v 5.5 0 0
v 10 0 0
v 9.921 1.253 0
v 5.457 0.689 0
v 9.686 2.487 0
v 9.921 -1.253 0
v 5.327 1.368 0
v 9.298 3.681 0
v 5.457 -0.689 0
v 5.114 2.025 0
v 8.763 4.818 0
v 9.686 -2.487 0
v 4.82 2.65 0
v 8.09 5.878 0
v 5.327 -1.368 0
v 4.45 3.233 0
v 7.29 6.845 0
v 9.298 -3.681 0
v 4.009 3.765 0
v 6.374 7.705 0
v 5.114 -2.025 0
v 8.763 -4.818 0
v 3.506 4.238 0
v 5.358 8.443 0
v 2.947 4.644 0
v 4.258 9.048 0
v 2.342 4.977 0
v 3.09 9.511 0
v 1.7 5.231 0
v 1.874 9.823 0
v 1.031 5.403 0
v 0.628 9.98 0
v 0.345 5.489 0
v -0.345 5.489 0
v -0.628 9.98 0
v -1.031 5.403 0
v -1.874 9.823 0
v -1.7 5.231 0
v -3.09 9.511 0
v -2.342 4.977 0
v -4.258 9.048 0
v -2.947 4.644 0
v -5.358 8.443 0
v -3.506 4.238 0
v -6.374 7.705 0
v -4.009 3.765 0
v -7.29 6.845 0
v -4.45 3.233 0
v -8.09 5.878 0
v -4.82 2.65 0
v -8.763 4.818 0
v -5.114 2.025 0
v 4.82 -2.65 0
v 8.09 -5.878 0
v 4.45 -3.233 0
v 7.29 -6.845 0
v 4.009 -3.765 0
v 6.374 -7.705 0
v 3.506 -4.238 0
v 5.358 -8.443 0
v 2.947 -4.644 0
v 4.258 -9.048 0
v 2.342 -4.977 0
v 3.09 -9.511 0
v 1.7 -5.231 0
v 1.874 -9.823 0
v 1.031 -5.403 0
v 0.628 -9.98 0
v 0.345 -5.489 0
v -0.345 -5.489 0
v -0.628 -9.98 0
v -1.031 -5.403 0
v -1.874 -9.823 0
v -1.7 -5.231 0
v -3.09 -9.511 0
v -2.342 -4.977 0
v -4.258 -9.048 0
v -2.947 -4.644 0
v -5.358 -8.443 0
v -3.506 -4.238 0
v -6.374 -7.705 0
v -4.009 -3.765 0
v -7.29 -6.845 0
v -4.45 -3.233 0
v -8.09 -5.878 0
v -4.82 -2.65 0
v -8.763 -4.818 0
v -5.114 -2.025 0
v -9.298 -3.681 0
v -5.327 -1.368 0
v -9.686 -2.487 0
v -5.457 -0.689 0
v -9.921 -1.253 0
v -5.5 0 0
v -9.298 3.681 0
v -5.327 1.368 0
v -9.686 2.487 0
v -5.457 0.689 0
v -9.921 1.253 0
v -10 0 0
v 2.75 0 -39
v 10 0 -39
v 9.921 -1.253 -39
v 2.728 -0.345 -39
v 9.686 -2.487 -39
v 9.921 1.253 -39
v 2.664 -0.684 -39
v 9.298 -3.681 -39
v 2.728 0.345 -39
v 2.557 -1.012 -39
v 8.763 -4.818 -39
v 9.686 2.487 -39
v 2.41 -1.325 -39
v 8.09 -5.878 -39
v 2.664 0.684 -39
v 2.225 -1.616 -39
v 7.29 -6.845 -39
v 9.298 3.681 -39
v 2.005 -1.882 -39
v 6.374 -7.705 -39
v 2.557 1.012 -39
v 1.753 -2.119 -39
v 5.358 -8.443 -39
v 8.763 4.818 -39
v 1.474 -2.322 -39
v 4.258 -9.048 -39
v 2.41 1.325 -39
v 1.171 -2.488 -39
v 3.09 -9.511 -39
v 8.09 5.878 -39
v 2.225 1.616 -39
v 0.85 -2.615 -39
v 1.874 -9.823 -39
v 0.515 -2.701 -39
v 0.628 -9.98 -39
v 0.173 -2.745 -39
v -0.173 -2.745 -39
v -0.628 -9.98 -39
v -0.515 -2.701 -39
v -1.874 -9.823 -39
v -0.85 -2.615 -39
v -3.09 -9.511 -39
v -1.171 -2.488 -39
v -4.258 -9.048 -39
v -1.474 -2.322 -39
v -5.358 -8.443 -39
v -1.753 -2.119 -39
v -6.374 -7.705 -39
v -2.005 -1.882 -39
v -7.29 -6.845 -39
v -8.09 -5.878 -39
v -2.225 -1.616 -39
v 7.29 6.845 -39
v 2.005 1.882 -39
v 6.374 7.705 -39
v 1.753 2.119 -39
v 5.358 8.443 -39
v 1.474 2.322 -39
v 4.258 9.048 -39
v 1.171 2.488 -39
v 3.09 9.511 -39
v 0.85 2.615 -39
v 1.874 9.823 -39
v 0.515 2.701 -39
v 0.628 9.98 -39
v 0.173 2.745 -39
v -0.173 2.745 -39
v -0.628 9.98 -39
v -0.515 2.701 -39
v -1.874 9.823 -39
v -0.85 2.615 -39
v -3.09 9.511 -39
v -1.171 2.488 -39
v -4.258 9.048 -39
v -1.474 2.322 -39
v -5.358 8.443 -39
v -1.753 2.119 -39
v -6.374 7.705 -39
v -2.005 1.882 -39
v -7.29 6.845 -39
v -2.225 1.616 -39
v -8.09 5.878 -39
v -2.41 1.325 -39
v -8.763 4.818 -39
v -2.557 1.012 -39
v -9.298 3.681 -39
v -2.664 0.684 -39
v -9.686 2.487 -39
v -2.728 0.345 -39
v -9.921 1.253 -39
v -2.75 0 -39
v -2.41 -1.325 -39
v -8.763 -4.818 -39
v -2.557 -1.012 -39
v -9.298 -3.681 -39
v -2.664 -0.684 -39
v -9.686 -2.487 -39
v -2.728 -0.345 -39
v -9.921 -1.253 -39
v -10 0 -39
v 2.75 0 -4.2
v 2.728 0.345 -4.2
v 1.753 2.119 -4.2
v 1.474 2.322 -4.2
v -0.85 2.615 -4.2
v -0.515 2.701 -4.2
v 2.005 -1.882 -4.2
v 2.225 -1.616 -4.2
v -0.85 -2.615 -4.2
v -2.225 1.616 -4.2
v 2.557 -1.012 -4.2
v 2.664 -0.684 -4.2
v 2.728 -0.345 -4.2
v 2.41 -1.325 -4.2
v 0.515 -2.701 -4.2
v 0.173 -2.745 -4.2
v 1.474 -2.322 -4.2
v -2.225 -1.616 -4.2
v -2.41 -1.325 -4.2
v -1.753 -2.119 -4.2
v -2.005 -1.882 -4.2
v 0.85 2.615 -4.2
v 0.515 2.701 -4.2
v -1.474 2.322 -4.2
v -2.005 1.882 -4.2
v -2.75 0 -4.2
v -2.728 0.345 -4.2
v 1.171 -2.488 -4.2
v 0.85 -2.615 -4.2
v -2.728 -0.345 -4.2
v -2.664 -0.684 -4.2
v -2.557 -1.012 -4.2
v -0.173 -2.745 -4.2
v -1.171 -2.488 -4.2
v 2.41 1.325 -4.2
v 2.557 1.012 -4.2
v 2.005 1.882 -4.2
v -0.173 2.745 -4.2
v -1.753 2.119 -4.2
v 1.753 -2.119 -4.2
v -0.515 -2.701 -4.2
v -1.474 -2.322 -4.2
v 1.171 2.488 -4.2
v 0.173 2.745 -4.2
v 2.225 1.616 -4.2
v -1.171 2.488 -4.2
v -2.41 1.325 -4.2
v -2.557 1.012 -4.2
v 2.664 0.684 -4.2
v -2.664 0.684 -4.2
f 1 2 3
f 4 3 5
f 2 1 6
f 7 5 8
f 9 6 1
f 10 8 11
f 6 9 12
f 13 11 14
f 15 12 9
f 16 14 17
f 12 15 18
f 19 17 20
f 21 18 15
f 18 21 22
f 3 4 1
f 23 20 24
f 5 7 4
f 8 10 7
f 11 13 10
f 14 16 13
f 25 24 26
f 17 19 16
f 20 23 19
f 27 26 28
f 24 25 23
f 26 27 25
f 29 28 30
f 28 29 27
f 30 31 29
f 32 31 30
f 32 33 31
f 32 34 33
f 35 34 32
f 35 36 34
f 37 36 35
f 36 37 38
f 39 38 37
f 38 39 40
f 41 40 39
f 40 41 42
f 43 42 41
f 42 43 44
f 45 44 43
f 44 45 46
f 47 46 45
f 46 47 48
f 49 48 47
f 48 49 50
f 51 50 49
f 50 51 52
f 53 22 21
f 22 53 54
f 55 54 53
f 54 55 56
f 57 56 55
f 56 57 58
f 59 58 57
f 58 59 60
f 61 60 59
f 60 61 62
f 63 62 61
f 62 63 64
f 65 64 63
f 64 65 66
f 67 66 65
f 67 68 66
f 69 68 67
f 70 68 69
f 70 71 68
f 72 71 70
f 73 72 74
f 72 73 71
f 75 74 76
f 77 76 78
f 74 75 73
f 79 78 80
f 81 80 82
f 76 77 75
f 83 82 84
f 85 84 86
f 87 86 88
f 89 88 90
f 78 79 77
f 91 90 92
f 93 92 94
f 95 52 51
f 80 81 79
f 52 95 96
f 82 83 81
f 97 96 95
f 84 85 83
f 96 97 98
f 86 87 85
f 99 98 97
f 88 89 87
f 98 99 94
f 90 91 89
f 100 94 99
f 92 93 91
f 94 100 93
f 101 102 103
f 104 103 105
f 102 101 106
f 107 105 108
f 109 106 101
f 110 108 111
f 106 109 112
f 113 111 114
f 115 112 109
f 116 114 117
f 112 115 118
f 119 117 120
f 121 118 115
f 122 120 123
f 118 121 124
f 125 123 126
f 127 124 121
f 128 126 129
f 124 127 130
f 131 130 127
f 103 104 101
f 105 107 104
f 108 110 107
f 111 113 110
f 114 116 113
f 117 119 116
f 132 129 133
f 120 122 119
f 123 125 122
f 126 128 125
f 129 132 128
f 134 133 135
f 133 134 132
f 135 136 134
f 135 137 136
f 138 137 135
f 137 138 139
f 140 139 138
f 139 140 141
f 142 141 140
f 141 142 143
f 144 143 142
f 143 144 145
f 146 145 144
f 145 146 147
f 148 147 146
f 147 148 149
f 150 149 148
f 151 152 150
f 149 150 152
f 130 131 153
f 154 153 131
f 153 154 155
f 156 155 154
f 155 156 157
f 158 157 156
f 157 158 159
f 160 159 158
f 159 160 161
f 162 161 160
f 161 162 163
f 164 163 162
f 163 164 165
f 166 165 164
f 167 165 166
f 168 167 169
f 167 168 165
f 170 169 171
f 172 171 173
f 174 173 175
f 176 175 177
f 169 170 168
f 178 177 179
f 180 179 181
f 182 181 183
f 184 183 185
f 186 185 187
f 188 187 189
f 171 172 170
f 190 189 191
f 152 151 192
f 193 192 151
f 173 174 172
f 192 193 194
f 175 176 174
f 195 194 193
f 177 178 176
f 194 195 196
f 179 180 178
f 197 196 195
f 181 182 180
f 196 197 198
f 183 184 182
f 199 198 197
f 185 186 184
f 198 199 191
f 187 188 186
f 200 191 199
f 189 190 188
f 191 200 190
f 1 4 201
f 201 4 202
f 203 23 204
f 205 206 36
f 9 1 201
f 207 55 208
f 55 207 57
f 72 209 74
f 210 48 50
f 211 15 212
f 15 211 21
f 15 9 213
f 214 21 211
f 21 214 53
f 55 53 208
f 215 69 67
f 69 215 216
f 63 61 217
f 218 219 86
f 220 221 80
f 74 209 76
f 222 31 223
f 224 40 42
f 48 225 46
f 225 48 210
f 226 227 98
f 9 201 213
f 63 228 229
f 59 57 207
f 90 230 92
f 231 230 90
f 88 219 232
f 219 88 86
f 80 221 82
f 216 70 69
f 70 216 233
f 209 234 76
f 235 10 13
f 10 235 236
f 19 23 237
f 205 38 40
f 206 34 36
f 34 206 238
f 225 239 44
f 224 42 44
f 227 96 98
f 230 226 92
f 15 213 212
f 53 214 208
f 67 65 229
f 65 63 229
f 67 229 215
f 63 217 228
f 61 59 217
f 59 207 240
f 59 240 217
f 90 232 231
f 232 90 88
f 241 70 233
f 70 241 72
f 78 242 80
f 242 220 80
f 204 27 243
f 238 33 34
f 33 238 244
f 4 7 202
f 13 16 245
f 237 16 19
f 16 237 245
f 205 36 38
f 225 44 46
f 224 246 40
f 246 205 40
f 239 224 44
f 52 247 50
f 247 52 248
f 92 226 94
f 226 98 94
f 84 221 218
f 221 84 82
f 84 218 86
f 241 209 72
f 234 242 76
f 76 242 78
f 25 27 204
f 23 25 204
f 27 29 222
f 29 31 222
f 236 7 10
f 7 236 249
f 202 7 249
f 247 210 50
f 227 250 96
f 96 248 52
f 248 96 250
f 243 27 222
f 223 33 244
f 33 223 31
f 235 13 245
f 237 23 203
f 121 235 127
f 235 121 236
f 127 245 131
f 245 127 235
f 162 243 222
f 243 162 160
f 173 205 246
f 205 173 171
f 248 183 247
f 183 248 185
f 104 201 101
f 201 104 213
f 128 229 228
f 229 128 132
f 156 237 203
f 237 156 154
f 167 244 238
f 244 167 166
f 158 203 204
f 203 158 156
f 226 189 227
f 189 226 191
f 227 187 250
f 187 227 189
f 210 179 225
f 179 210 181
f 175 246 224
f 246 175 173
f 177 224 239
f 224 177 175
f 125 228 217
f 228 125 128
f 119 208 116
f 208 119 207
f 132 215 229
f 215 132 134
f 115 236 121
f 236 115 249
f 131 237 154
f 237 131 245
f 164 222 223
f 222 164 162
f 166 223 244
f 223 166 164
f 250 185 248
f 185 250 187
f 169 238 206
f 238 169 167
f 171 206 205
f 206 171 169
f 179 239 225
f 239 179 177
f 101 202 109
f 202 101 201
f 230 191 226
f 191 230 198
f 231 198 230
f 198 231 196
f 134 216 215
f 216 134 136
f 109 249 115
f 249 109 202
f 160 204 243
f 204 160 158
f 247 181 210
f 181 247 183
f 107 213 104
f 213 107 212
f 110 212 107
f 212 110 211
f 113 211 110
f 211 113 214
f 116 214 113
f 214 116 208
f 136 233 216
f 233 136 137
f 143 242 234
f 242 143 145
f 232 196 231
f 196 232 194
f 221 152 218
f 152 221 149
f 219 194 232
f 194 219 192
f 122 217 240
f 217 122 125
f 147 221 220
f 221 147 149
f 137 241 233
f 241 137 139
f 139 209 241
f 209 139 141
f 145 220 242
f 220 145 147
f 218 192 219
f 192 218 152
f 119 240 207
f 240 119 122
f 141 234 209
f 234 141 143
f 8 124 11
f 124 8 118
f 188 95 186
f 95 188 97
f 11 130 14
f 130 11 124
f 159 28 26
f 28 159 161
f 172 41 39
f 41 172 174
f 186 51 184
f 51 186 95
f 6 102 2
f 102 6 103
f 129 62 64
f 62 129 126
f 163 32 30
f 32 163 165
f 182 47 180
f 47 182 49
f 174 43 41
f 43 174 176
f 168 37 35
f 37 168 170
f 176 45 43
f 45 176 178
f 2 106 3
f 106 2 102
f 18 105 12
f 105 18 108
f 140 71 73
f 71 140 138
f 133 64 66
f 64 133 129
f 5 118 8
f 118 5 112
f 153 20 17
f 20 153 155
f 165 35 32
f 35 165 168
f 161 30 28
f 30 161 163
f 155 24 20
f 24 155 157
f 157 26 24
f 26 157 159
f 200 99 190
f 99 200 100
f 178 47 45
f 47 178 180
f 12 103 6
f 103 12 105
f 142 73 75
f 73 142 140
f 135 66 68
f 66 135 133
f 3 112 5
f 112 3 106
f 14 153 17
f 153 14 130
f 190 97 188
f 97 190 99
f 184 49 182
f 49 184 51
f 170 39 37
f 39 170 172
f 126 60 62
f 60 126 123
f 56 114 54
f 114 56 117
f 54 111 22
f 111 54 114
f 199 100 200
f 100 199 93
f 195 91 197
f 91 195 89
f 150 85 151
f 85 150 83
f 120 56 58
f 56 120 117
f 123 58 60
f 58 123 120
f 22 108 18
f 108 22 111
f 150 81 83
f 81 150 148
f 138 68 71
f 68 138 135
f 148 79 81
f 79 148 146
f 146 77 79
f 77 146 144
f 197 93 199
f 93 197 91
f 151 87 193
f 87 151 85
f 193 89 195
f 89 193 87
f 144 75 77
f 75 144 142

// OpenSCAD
$fn = 50;


difference() {
	union() {
		translate(v = [0, 0, -39.0000000000]) {
			cylinder(h = 39, r = 10.0000000000);
		}
		cylinder(h = 0, r = 19.0000000000);
	}
	union() {
		translate(v = [0, 0, 0]) {
			rotate(a = [0, 0, 0]) {
				difference() {
					union() {
						#translate(v = [0, 0, -39.0000000000]) {
							cylinder(h = 39, r = 2.2500000000);
						}
						#translate(v = [0, 0, -4.2000000000]) {
							cylinder(h = 4.2000000000, r1 = 2.7500000000, r2 = 5.5000000000);
						}
						#translate(v = [0, 0, -39.0000000000]) {
							cylinder(h = 39, r = 2.7500000000);
						}
						#translate(v = [0, 0, -39.0000000000]) {
							cylinder(h = 39, r = 2.2500000000);
						}
					}
					union();
				}
			}
		}
	}
}
